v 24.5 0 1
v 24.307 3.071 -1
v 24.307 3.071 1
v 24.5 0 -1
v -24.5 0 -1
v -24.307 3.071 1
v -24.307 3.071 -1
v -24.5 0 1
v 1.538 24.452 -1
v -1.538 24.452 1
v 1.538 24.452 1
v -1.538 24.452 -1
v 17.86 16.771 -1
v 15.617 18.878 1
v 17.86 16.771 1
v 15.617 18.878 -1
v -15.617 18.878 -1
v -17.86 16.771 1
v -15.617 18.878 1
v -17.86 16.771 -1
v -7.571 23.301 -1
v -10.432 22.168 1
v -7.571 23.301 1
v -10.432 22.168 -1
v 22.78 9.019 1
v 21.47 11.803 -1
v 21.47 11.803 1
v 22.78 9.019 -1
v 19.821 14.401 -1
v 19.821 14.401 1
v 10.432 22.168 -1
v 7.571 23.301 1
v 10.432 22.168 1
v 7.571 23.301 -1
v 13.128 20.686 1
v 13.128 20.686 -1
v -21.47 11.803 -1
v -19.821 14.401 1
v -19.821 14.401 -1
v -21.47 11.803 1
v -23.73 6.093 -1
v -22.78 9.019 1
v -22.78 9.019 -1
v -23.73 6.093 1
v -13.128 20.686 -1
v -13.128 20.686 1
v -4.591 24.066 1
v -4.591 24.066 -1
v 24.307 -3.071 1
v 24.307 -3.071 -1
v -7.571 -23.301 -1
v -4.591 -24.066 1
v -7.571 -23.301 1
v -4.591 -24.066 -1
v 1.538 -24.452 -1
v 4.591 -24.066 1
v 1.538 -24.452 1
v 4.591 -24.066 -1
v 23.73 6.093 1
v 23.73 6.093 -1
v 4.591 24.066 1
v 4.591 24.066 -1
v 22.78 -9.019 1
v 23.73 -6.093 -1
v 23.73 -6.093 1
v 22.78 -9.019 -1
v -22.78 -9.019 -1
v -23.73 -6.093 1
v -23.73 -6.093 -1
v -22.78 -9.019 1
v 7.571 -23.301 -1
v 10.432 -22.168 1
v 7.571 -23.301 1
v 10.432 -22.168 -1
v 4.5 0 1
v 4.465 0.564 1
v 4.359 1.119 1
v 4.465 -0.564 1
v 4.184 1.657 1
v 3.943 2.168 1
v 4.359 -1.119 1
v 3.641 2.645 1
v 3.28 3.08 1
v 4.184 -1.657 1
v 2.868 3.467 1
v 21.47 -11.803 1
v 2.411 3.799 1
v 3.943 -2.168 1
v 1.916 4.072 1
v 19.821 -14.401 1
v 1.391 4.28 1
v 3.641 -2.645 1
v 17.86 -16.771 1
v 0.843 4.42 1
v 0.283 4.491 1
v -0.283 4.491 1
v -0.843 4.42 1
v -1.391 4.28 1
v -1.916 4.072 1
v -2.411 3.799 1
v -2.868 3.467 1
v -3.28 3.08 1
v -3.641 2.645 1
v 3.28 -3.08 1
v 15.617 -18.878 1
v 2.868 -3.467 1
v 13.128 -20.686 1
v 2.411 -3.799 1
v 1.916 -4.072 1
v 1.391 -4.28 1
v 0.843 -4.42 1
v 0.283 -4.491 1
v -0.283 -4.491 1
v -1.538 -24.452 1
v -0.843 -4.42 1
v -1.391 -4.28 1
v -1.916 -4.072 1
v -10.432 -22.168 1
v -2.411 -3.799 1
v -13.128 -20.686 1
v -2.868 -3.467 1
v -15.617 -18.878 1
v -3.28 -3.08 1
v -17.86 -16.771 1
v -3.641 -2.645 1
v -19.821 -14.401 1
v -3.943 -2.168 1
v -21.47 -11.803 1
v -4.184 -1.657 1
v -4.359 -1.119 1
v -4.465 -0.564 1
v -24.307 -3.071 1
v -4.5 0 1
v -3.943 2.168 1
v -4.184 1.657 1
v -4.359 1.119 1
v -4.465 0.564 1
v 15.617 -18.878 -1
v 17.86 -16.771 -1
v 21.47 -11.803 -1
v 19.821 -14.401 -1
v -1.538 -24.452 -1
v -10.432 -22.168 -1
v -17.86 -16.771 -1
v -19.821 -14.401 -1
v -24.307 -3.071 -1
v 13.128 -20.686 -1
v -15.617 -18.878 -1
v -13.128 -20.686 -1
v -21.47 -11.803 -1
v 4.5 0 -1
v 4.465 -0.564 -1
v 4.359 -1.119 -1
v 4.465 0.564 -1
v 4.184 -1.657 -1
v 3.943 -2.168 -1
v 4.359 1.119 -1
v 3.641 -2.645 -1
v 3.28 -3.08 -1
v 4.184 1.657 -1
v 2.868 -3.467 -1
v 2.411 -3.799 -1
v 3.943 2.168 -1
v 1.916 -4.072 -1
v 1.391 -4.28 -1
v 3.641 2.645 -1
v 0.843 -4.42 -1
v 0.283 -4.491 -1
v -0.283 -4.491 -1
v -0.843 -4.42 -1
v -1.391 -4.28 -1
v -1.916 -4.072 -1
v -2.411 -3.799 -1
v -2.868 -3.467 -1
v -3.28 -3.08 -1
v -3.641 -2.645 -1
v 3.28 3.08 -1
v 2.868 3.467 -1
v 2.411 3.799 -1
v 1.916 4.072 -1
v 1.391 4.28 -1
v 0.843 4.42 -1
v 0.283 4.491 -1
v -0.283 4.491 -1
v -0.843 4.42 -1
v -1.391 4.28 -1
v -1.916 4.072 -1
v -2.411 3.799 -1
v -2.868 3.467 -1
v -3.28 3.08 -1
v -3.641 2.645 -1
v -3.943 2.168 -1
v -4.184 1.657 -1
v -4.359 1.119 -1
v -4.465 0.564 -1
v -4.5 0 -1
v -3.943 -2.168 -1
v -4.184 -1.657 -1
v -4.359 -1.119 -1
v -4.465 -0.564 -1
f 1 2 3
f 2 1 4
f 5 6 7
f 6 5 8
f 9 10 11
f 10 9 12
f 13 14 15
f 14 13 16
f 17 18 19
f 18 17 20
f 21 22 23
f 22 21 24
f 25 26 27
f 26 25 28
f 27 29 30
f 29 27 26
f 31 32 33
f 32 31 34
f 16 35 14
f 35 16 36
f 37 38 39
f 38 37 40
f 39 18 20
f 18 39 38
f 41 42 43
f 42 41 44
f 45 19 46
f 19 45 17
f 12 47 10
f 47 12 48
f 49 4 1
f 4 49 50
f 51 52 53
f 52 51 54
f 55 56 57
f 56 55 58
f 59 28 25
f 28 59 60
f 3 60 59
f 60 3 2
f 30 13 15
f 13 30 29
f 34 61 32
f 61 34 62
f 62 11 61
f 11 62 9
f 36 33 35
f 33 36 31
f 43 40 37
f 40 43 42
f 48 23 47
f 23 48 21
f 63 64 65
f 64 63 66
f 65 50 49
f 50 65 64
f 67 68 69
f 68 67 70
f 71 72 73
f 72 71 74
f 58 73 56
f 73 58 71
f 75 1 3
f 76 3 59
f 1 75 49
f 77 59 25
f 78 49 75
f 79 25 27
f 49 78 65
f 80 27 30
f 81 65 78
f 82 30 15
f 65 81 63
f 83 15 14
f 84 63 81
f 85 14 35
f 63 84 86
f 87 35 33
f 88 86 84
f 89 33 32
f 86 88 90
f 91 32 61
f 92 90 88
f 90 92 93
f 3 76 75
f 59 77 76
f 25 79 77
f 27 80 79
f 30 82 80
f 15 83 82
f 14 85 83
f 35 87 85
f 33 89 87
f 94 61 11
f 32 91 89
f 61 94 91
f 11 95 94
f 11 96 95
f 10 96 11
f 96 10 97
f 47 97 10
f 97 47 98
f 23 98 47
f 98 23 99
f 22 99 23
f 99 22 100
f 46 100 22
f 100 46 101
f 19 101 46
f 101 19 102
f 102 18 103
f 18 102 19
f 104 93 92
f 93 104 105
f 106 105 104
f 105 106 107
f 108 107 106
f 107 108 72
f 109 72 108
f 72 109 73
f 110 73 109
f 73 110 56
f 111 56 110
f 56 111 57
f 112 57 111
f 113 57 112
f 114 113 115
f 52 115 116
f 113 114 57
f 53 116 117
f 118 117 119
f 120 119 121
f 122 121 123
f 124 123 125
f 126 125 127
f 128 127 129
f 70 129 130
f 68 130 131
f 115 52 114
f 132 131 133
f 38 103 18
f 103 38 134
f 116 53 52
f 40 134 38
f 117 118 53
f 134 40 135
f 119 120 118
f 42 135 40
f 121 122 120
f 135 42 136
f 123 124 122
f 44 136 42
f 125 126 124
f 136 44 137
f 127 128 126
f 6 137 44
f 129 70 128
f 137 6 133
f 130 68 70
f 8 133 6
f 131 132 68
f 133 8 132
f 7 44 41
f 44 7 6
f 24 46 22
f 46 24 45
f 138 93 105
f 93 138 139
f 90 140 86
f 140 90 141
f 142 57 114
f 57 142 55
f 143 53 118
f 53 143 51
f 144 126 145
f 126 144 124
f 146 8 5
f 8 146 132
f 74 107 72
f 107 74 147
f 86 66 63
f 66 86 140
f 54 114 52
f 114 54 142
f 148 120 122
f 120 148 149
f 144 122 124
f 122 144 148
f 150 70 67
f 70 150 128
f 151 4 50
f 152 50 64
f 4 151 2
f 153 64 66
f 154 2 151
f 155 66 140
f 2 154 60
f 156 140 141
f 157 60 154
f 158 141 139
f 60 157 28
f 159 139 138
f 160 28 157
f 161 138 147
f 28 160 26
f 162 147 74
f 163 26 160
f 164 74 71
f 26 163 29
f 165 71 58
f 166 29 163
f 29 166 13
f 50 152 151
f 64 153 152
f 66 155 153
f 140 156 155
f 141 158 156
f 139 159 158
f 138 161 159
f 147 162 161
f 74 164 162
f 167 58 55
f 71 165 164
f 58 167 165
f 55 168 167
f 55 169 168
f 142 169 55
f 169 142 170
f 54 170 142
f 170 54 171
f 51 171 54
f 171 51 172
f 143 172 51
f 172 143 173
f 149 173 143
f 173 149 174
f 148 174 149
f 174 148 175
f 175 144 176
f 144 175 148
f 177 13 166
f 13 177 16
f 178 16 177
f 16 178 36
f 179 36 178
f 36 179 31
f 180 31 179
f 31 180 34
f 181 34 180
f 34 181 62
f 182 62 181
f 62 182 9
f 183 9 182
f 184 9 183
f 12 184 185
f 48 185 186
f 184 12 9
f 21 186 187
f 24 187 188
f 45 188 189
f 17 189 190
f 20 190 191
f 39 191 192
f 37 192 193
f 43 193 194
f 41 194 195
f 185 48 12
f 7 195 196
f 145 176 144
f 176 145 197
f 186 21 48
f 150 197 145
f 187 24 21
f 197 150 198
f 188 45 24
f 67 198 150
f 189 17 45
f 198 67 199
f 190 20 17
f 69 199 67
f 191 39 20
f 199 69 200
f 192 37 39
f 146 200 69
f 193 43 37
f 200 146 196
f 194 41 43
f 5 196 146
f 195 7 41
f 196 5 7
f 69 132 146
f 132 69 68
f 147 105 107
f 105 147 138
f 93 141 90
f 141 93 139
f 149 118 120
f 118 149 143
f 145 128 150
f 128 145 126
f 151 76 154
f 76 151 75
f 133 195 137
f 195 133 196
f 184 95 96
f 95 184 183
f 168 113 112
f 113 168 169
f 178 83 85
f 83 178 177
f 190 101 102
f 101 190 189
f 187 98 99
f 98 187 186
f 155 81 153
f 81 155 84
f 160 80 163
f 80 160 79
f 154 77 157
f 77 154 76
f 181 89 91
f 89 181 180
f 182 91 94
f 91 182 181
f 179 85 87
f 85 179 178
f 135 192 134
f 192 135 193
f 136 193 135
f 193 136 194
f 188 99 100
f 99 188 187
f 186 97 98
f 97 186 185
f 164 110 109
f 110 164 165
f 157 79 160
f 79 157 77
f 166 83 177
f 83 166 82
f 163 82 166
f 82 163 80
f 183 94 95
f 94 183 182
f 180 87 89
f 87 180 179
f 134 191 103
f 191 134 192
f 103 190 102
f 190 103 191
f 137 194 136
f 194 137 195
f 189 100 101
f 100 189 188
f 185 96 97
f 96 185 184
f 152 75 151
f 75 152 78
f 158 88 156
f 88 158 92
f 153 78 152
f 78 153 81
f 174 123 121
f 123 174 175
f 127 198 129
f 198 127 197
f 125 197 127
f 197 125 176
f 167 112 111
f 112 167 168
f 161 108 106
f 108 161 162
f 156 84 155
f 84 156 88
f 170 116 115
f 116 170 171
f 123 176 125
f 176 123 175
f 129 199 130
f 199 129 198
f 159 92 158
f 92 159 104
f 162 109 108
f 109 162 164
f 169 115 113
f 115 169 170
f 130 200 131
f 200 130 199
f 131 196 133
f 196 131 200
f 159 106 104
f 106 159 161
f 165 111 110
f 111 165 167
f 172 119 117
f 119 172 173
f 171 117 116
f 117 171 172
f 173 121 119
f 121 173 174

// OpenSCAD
$fn = 50;


difference() {
	union() {
		translate(v = [0, 0, -1.0000000000]) {
			cylinder(h = 2, r = 24.5000000000);
		}
	}
	union() {
		translate(v = [0, 0, -100.0000000000]) {
			cylinder(h = 200, r = 4.5000000000);
		}
	}
}
